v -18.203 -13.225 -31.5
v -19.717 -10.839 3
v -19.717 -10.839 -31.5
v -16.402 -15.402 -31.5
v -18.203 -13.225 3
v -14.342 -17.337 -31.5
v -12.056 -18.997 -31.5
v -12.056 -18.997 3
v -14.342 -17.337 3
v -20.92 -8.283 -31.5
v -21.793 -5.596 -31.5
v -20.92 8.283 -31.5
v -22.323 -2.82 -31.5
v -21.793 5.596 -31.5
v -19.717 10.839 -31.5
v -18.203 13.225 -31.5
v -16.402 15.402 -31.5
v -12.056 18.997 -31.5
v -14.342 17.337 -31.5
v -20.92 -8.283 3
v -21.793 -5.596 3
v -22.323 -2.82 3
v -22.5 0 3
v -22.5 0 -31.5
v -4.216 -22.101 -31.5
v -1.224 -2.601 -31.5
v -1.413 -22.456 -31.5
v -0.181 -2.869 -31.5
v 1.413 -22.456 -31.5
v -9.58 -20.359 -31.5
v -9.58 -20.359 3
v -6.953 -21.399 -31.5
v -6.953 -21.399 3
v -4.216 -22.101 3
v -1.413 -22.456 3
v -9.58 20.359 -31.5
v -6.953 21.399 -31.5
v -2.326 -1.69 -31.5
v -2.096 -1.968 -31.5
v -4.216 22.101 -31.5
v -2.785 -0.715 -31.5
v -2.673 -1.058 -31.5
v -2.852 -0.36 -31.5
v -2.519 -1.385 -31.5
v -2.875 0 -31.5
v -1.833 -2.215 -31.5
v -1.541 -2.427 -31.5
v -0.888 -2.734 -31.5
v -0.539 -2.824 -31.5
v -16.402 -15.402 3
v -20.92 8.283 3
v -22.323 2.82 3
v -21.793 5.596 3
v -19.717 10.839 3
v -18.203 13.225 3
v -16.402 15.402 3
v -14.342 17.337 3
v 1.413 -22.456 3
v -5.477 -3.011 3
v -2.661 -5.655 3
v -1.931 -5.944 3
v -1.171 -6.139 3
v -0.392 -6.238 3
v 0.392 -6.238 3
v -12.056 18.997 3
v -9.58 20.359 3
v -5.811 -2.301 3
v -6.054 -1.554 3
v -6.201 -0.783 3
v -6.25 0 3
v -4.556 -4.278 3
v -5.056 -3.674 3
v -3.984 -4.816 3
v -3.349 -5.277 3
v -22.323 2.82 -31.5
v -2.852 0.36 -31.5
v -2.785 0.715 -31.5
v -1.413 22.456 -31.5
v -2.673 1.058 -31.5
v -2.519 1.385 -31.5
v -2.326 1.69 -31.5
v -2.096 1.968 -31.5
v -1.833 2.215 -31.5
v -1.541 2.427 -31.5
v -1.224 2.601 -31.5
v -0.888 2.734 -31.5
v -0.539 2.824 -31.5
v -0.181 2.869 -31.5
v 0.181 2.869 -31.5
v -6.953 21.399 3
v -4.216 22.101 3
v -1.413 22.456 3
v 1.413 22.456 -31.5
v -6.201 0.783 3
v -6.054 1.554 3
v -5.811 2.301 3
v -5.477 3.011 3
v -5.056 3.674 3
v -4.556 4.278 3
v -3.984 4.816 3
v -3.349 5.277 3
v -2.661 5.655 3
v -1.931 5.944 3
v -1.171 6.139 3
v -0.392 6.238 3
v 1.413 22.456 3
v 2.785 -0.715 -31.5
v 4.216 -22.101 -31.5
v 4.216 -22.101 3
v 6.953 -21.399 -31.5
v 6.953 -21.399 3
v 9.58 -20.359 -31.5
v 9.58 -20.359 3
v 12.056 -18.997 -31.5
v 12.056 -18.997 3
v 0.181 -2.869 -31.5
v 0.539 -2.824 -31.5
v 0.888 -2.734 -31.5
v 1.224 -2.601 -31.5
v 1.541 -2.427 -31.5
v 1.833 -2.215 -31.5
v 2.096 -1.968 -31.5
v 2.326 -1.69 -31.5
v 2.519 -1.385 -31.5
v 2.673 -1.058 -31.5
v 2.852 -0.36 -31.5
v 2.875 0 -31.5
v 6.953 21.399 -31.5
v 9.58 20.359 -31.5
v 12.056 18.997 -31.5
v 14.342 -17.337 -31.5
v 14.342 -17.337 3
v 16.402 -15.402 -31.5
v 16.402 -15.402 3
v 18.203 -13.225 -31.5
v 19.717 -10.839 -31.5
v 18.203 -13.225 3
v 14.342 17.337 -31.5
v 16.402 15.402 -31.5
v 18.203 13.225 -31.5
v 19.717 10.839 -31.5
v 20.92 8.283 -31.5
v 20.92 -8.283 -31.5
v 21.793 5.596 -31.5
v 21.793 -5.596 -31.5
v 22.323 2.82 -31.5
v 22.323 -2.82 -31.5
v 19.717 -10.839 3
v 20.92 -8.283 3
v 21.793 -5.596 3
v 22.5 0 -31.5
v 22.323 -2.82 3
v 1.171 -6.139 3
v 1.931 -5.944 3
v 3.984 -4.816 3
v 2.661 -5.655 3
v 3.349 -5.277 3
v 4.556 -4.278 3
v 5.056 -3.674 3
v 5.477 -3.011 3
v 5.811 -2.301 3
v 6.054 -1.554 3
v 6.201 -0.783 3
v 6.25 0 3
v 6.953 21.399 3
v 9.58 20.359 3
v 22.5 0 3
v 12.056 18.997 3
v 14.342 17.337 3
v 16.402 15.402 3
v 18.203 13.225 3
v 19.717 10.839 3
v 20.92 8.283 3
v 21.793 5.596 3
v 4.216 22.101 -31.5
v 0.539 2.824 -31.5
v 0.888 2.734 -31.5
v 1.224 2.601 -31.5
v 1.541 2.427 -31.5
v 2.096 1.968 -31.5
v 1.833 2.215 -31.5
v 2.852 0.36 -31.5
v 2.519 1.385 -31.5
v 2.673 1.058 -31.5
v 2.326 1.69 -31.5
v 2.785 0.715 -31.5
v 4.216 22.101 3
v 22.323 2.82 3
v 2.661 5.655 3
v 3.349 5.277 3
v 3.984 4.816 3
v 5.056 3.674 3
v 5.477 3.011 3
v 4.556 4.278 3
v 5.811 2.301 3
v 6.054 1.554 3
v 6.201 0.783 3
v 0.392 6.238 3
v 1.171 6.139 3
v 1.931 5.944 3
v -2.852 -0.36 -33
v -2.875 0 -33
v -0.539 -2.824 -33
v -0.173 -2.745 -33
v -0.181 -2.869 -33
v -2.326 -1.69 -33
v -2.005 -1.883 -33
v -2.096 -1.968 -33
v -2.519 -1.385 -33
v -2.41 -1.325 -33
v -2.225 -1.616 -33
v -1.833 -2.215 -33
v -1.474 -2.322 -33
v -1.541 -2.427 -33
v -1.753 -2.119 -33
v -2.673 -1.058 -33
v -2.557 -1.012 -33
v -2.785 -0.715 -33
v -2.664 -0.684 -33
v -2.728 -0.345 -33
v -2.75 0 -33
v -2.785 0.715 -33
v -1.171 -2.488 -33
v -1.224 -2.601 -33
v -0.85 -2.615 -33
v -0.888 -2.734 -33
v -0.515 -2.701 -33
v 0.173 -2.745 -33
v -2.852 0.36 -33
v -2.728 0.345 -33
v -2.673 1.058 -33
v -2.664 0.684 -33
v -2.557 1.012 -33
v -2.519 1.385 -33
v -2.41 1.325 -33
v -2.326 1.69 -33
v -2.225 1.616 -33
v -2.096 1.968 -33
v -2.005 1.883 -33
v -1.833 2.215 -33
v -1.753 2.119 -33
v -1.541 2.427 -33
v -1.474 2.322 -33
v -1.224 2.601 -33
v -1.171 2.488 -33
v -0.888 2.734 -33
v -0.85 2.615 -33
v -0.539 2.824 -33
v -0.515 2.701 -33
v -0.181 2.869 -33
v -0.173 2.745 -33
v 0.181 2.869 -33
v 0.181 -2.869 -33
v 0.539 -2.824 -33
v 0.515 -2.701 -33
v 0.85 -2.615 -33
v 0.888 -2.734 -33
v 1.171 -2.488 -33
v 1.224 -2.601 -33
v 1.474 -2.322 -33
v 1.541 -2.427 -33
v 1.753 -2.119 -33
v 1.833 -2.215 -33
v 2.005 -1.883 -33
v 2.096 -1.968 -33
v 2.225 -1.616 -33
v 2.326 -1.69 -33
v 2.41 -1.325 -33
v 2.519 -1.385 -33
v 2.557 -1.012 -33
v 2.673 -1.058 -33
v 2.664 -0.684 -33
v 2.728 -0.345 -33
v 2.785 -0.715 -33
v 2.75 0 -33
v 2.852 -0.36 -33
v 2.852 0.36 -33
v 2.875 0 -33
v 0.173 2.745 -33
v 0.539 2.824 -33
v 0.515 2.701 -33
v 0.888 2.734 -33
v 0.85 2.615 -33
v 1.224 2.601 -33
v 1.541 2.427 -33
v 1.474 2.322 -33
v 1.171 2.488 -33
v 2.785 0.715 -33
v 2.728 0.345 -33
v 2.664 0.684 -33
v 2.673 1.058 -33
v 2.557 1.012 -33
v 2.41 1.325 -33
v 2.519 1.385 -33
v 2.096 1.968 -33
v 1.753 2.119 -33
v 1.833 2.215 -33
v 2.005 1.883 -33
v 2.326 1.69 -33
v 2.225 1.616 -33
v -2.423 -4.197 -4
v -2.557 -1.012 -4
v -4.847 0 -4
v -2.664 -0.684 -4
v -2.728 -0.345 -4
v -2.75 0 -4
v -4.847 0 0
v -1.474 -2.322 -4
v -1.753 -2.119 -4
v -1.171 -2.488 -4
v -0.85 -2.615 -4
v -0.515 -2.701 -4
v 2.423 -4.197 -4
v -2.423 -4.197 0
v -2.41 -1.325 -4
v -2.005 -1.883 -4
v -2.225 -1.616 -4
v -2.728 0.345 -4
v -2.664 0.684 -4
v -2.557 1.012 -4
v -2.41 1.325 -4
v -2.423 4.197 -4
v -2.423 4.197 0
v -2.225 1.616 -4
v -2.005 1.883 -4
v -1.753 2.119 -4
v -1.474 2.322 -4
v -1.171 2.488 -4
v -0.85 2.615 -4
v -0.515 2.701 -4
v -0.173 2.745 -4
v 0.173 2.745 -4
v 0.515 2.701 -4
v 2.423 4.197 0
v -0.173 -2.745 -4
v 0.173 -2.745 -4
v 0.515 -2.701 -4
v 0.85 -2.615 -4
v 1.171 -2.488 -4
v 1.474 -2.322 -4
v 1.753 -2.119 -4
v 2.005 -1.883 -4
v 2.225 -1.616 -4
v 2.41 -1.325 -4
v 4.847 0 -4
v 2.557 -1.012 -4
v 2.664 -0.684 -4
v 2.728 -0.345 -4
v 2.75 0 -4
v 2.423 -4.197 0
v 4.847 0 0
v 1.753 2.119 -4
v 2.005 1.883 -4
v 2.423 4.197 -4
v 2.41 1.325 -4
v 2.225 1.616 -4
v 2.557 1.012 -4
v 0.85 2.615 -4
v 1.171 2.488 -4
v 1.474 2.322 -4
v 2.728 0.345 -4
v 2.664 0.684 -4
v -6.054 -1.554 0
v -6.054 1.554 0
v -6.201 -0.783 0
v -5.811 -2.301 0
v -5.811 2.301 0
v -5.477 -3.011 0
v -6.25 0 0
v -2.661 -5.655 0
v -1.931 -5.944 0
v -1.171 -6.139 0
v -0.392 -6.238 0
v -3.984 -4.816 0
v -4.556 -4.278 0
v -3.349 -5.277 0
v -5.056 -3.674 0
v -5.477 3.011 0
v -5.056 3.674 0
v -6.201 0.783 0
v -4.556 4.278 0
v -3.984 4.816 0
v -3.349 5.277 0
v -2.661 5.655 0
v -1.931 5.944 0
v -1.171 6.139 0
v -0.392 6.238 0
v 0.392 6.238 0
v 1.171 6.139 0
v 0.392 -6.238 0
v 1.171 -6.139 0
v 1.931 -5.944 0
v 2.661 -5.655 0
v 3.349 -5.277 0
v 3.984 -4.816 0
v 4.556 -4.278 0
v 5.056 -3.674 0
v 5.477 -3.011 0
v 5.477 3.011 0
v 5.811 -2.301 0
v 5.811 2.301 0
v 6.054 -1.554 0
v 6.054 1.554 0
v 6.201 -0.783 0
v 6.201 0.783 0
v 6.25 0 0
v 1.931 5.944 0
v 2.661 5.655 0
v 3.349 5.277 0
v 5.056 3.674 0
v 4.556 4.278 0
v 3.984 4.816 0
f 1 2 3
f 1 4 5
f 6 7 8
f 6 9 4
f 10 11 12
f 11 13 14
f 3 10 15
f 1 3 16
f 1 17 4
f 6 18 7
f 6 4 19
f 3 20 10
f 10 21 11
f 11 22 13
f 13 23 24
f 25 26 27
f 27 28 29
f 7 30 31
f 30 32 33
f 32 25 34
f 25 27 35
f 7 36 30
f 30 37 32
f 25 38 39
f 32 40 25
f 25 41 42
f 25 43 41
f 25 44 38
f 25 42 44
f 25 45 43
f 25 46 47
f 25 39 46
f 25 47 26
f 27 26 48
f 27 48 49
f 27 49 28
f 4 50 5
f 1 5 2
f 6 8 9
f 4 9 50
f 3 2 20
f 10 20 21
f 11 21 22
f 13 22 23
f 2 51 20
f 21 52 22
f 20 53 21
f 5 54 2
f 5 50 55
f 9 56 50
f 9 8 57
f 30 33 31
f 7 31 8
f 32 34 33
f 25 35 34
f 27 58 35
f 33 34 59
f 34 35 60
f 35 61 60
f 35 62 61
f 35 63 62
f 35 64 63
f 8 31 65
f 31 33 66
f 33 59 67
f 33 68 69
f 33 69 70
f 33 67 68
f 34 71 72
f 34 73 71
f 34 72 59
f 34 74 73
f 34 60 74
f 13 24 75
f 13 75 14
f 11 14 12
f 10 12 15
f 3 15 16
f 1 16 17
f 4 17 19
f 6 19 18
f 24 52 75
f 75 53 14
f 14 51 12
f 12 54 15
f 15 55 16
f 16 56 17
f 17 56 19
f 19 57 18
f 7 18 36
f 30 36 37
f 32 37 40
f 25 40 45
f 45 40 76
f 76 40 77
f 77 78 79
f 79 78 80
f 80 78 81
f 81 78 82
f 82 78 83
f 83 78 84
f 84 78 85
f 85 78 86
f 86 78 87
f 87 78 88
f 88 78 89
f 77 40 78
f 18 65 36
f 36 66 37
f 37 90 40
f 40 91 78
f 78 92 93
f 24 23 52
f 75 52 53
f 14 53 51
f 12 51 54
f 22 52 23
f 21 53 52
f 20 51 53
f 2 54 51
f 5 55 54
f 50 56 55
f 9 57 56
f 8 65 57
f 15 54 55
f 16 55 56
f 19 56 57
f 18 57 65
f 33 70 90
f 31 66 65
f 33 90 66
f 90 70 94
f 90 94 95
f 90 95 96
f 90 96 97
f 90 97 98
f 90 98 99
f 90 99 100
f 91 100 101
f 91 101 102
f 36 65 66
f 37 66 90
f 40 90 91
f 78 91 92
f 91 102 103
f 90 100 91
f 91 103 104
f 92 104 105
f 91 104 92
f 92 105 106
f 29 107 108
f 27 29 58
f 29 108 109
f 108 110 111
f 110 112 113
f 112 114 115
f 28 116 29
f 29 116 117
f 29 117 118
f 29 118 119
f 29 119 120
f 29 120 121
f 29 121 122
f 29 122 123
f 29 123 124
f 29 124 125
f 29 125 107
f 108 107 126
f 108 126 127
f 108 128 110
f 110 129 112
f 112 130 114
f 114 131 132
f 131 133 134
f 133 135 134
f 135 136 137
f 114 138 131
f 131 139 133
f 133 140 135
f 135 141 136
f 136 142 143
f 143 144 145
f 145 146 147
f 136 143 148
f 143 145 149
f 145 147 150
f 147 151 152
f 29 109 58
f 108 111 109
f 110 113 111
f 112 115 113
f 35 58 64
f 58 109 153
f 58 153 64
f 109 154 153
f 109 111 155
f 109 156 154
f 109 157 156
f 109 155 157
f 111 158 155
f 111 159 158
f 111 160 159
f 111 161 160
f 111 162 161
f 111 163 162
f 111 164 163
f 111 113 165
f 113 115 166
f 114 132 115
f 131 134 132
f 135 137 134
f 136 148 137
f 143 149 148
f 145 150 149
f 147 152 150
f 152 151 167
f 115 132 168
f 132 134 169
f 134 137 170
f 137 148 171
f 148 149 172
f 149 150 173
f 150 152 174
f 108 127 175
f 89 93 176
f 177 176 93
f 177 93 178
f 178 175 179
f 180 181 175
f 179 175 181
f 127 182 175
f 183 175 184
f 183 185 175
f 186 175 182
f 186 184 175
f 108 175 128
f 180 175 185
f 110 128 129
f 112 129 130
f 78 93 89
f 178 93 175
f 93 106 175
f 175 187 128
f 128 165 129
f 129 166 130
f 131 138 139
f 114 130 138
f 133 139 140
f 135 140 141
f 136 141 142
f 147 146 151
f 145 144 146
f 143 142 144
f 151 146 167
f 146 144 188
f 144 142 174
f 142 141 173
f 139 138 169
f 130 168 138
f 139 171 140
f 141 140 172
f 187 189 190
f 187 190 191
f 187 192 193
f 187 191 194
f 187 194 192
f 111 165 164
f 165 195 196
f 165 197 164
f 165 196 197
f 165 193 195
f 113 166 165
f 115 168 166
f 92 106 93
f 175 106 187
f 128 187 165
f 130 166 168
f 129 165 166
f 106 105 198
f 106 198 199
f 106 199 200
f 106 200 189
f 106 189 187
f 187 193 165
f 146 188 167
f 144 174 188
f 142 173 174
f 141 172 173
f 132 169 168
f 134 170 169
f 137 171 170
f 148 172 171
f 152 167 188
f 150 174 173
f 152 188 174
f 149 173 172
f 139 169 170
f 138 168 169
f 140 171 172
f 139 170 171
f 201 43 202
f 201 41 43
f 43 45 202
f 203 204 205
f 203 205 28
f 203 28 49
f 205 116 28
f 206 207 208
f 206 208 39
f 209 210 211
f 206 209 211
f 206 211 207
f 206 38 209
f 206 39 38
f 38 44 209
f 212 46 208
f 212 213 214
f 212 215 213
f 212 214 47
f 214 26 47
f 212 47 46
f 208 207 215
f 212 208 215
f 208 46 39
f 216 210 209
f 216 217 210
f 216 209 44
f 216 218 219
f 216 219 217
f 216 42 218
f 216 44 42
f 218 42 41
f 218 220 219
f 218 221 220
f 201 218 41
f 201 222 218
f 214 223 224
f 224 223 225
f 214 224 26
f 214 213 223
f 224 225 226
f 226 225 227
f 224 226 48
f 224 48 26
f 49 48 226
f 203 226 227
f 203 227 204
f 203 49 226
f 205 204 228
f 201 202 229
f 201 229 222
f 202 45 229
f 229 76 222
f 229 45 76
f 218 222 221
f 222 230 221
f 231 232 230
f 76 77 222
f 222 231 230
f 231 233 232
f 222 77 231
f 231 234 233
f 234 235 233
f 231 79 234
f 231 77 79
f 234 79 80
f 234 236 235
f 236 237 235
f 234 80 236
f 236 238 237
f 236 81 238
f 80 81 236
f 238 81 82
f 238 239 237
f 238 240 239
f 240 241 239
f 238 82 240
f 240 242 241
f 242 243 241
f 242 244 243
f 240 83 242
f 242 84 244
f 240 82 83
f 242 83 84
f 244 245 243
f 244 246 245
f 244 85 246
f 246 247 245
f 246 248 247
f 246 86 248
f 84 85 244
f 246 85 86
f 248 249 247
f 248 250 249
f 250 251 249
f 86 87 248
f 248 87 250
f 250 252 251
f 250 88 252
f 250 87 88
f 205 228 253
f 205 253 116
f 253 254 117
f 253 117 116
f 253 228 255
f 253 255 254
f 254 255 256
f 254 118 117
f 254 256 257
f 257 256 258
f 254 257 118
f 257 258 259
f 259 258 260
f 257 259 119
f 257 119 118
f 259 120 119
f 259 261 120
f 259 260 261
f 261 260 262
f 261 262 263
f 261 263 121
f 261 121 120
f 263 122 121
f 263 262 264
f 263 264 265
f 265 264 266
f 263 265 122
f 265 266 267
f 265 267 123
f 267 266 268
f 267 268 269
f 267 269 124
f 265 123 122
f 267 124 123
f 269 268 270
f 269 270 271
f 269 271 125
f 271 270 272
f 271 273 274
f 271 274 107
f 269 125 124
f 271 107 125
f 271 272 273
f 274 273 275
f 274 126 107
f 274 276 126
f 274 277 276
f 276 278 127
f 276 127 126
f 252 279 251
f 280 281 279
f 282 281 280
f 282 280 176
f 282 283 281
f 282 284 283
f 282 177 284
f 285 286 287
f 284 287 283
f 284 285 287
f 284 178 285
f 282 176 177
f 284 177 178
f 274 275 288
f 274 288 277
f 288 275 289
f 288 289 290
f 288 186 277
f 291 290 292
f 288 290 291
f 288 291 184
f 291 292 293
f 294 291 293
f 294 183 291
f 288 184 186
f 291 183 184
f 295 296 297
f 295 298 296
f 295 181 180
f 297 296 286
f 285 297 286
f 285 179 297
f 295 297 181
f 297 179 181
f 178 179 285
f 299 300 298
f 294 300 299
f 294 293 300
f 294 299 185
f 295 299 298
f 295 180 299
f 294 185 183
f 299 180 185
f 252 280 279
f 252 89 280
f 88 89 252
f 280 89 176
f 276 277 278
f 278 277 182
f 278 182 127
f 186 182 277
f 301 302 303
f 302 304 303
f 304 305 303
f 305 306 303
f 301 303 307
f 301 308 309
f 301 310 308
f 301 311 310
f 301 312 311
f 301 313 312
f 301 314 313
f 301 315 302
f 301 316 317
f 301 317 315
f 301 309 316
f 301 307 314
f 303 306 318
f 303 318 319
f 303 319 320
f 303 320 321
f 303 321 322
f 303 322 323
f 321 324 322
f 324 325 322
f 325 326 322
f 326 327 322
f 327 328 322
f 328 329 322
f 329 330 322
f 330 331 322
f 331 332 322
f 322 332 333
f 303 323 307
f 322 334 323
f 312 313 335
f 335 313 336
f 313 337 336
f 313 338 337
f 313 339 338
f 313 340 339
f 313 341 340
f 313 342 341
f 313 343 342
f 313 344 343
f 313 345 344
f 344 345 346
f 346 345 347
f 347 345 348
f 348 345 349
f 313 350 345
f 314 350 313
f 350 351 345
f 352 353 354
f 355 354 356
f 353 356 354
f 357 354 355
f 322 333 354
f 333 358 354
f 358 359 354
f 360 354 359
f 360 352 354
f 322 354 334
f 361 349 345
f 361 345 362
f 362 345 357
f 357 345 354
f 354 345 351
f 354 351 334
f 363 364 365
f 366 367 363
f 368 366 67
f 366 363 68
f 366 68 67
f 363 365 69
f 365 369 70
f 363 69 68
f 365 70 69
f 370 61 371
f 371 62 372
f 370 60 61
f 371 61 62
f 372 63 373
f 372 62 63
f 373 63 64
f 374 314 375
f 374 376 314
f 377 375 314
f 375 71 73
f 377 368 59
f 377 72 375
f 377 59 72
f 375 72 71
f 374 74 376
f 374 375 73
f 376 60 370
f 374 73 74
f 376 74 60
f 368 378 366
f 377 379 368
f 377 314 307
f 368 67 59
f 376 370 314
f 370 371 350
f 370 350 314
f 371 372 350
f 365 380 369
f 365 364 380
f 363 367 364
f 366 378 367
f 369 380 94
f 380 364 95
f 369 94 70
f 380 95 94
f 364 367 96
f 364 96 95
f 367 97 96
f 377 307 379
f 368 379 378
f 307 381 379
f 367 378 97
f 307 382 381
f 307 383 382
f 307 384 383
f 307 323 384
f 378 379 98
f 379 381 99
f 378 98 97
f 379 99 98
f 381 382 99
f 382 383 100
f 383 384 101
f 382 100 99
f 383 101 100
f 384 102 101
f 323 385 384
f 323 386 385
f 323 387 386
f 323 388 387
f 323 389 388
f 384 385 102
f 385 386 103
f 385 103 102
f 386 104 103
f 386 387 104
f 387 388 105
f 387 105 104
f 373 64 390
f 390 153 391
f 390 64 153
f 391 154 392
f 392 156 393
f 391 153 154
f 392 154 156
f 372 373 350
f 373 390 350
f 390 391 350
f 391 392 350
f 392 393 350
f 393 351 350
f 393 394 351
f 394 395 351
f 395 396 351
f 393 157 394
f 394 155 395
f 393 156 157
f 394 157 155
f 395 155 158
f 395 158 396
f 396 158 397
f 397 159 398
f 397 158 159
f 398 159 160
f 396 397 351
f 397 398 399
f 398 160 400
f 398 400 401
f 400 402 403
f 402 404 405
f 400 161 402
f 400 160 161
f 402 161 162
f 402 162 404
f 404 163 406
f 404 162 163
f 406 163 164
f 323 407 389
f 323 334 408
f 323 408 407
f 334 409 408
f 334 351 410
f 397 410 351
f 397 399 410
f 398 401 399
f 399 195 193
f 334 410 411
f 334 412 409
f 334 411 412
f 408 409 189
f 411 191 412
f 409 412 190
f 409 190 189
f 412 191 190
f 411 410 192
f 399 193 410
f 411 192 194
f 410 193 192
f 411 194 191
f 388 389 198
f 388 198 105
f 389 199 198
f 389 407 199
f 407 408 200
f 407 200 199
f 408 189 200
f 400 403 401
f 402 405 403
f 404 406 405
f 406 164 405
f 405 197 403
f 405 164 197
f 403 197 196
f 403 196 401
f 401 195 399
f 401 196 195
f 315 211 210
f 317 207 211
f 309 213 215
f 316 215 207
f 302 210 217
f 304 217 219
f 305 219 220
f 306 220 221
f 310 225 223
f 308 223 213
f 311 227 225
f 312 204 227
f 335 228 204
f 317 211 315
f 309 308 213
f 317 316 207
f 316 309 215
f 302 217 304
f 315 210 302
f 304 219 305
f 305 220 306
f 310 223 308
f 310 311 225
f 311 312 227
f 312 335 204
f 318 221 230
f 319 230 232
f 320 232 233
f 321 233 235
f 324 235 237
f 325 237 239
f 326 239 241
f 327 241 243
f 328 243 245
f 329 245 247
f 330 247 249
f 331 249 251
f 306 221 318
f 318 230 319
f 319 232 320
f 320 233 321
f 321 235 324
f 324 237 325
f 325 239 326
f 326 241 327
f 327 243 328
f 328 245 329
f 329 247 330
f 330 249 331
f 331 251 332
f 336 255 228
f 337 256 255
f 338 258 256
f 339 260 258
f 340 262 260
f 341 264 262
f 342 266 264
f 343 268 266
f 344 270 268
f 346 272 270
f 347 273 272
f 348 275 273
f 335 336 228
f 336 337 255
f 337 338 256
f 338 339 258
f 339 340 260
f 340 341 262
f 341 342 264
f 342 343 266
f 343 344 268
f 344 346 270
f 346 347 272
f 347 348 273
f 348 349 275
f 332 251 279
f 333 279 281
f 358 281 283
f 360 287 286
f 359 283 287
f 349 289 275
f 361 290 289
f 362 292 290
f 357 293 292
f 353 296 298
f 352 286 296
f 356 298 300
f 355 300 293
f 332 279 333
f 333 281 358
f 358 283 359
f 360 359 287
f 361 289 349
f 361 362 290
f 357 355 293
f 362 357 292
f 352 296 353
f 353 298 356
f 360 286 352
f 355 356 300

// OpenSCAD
$fn = 50;


difference() {
	union() {
		translate(v = [0, 0, -31.5000000000]) {
			cylinder(h = 34.5000000000, r = 22.5000000000);
		}
		#translate(v = [0, 0, -33.0000000000]) {
			cylinder(h = 33, r = 2.8750000000);
		}
	}
	union() {
		translate(v = [0, 0, 0]) {
			rotate(a = [0, 0, 0]) {
				difference() {
					union() {
						translate(v = [0, 0, -4]) {
							linear_extrude(height = 4) {
								polygon(points = [[4.8468000000, 0.0000000000], [2.4234000000, 4.1974519271], [-2.4234000000, 4.1974519271], [-4.8468000000, 0.0000000000], [-2.4234000000, -4.1974519271], [2.4234000000, -4.1974519271]]);
							}
						}
					}
					union();
				}
			}
		}
		#cylinder(h = 3, r = 6.2500000000);
		#translate(v = [0, 0, -100.0000000000]) {
			cylinder(h = 200, r = 2.7500000000);
		}
	}
}
